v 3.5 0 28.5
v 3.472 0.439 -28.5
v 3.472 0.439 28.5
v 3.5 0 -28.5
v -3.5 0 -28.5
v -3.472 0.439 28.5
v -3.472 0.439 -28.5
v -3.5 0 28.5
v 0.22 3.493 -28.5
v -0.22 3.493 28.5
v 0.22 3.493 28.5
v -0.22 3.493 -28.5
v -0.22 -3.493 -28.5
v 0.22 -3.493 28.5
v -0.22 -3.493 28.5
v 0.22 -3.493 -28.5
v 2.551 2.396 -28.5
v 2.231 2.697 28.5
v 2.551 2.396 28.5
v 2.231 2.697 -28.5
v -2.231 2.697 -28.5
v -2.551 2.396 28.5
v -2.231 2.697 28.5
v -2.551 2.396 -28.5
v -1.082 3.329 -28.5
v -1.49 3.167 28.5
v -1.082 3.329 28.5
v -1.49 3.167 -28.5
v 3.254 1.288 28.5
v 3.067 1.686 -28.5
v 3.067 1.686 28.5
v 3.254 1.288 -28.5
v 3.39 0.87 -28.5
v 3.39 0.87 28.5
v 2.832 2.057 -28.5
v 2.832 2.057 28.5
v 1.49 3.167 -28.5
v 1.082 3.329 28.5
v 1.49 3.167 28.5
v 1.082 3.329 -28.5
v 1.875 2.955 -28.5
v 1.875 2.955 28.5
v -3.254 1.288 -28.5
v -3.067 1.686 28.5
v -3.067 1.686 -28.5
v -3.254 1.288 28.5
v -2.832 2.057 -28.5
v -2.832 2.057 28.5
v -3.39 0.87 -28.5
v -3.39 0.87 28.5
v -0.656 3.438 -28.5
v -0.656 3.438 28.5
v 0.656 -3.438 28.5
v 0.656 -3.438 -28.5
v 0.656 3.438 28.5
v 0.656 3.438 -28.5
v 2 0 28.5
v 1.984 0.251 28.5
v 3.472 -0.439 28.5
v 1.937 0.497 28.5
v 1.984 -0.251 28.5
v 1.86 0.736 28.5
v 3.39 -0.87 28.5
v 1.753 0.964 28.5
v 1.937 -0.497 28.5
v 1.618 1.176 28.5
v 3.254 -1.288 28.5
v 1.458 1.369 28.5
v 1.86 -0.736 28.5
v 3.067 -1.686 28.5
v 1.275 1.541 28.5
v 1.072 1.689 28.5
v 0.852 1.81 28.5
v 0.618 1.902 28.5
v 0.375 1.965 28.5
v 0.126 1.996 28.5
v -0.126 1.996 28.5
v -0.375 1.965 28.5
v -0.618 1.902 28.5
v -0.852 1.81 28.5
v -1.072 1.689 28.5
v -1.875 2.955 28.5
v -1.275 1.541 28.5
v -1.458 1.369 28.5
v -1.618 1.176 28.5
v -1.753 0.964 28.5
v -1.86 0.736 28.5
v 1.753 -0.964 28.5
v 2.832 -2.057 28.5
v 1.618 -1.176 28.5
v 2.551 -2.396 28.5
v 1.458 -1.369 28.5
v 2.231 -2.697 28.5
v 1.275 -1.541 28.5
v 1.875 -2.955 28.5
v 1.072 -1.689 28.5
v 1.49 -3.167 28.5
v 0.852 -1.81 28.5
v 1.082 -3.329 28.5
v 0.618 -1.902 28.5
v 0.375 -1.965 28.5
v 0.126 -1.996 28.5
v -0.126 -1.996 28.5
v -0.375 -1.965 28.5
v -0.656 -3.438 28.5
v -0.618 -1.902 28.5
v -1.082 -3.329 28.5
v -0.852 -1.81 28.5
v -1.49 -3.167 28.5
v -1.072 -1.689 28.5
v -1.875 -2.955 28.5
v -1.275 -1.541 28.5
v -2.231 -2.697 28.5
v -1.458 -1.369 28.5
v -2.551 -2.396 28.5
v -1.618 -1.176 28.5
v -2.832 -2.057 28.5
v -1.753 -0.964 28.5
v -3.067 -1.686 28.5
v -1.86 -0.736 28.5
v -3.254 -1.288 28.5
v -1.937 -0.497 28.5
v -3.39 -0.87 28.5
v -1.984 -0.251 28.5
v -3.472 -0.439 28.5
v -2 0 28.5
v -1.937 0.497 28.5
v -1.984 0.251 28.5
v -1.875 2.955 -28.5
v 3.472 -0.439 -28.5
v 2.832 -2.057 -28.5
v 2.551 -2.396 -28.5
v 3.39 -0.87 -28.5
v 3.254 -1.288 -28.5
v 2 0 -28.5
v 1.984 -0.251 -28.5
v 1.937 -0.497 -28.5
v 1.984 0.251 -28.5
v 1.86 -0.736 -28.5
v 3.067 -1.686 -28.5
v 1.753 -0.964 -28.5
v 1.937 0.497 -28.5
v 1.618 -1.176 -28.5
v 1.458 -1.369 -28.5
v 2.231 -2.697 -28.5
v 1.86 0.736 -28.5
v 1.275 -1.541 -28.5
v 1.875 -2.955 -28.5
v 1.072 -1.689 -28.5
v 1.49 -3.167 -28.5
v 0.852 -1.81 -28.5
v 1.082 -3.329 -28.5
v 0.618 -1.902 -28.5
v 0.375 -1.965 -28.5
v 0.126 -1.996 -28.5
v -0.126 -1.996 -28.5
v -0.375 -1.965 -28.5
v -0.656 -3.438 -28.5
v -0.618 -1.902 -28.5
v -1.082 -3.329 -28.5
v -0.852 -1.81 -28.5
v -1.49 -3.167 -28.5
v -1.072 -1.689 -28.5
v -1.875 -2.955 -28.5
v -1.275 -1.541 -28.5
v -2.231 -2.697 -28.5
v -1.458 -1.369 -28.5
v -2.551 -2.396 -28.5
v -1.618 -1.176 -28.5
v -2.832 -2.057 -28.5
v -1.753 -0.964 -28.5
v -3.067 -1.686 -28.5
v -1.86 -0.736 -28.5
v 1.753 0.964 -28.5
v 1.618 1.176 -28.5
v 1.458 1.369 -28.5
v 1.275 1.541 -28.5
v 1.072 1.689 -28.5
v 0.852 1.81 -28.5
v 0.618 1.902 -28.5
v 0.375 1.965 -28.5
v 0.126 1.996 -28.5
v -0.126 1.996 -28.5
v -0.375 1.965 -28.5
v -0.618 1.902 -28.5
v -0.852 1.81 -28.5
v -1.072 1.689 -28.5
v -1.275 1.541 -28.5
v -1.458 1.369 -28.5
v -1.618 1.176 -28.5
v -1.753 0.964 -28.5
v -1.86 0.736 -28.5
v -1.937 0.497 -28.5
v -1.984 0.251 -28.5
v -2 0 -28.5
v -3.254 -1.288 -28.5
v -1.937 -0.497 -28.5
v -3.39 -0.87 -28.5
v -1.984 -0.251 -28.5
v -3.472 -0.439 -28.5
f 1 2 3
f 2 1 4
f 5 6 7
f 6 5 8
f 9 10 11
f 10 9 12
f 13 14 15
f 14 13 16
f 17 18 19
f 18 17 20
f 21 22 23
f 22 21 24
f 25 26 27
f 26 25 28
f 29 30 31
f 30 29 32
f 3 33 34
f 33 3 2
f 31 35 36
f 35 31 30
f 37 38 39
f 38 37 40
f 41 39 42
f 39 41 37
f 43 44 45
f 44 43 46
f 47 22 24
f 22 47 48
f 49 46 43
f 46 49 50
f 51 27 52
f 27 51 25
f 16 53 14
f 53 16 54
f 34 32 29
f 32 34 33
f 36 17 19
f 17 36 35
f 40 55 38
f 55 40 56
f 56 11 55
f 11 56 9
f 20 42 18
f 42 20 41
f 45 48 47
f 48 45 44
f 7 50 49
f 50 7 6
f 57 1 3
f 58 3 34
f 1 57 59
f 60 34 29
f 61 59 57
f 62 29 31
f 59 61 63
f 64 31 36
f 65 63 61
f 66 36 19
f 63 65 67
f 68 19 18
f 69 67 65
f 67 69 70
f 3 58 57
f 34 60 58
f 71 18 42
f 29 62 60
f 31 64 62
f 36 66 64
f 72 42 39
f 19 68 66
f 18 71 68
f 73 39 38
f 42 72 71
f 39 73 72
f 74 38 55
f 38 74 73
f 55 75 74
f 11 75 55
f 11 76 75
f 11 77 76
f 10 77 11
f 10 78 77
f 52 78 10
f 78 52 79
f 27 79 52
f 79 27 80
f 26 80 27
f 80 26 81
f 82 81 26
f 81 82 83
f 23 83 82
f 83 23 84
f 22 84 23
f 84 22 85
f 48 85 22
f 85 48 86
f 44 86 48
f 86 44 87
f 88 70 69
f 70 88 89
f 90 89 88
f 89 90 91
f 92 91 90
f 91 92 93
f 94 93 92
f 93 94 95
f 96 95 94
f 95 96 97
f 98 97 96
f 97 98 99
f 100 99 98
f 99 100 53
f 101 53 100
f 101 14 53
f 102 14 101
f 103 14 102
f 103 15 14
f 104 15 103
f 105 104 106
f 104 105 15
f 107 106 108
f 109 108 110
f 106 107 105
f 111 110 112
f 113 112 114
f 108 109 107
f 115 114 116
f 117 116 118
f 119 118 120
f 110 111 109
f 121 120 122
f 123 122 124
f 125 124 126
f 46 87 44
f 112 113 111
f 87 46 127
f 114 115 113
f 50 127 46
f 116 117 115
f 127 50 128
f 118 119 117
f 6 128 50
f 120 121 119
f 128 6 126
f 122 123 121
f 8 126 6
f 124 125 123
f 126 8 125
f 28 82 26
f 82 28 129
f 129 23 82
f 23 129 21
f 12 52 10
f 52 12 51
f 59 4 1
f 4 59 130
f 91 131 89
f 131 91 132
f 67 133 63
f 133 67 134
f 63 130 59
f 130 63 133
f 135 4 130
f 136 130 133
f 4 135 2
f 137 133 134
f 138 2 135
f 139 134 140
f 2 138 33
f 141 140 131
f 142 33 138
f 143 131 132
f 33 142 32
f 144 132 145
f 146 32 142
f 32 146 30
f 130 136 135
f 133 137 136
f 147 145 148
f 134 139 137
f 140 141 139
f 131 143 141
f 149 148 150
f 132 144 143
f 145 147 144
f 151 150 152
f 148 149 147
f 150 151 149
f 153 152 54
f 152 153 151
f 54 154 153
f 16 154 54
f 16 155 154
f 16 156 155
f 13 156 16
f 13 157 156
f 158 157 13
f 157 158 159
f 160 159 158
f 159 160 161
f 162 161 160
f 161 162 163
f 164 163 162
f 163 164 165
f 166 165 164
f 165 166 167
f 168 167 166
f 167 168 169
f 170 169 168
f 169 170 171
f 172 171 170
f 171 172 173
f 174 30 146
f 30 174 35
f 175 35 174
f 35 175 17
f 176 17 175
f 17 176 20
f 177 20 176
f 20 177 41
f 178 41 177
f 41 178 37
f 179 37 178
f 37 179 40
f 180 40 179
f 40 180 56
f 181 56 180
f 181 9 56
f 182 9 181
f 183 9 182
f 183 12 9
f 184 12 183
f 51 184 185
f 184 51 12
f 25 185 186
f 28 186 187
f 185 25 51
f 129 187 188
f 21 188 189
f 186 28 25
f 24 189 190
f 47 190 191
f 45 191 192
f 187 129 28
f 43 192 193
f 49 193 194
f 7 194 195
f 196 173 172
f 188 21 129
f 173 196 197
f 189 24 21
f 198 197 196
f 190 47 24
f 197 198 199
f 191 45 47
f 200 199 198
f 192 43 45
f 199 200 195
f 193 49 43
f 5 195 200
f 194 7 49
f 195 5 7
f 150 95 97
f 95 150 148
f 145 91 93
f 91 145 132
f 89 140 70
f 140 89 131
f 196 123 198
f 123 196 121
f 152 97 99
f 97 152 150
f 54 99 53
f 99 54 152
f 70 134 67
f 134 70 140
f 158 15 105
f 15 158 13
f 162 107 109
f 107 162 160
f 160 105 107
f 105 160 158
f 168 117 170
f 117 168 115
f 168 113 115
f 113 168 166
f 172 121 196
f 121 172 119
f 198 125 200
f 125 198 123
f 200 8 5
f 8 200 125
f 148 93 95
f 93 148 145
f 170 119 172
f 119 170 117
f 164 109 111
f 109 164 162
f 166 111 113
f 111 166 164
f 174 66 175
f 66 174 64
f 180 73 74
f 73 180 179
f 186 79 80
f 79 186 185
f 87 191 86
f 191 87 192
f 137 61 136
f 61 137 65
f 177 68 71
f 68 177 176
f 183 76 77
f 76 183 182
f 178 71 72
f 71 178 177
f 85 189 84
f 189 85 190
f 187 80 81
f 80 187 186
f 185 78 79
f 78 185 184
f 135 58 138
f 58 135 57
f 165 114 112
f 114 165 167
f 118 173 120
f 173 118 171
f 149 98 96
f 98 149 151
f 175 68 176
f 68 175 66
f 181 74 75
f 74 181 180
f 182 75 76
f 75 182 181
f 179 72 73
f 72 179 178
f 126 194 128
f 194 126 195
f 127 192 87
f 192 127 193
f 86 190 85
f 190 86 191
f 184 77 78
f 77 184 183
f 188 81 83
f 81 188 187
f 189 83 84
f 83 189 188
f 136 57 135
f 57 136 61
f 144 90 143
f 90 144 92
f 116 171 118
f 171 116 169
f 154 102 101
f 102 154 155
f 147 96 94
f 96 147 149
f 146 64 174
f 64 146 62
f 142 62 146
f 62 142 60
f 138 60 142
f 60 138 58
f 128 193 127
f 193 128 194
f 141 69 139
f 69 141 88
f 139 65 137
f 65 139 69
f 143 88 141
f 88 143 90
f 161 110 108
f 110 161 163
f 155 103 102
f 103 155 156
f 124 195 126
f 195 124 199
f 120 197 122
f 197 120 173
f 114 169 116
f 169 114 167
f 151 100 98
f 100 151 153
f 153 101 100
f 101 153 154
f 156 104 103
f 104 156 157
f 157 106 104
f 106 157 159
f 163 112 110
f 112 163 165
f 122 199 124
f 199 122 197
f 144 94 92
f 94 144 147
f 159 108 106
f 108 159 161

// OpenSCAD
$fn = 50;


difference() {
	union() {
		translate(v = [0, 0, -28.5000000000]) {
			cylinder(h = 57, r = 3.5000000000);
		}
	}
	union() {
		translate(v = [0, 0, -100.0000000000]) {
			cylinder(h = 200, r = 2);
		}
	}
}
